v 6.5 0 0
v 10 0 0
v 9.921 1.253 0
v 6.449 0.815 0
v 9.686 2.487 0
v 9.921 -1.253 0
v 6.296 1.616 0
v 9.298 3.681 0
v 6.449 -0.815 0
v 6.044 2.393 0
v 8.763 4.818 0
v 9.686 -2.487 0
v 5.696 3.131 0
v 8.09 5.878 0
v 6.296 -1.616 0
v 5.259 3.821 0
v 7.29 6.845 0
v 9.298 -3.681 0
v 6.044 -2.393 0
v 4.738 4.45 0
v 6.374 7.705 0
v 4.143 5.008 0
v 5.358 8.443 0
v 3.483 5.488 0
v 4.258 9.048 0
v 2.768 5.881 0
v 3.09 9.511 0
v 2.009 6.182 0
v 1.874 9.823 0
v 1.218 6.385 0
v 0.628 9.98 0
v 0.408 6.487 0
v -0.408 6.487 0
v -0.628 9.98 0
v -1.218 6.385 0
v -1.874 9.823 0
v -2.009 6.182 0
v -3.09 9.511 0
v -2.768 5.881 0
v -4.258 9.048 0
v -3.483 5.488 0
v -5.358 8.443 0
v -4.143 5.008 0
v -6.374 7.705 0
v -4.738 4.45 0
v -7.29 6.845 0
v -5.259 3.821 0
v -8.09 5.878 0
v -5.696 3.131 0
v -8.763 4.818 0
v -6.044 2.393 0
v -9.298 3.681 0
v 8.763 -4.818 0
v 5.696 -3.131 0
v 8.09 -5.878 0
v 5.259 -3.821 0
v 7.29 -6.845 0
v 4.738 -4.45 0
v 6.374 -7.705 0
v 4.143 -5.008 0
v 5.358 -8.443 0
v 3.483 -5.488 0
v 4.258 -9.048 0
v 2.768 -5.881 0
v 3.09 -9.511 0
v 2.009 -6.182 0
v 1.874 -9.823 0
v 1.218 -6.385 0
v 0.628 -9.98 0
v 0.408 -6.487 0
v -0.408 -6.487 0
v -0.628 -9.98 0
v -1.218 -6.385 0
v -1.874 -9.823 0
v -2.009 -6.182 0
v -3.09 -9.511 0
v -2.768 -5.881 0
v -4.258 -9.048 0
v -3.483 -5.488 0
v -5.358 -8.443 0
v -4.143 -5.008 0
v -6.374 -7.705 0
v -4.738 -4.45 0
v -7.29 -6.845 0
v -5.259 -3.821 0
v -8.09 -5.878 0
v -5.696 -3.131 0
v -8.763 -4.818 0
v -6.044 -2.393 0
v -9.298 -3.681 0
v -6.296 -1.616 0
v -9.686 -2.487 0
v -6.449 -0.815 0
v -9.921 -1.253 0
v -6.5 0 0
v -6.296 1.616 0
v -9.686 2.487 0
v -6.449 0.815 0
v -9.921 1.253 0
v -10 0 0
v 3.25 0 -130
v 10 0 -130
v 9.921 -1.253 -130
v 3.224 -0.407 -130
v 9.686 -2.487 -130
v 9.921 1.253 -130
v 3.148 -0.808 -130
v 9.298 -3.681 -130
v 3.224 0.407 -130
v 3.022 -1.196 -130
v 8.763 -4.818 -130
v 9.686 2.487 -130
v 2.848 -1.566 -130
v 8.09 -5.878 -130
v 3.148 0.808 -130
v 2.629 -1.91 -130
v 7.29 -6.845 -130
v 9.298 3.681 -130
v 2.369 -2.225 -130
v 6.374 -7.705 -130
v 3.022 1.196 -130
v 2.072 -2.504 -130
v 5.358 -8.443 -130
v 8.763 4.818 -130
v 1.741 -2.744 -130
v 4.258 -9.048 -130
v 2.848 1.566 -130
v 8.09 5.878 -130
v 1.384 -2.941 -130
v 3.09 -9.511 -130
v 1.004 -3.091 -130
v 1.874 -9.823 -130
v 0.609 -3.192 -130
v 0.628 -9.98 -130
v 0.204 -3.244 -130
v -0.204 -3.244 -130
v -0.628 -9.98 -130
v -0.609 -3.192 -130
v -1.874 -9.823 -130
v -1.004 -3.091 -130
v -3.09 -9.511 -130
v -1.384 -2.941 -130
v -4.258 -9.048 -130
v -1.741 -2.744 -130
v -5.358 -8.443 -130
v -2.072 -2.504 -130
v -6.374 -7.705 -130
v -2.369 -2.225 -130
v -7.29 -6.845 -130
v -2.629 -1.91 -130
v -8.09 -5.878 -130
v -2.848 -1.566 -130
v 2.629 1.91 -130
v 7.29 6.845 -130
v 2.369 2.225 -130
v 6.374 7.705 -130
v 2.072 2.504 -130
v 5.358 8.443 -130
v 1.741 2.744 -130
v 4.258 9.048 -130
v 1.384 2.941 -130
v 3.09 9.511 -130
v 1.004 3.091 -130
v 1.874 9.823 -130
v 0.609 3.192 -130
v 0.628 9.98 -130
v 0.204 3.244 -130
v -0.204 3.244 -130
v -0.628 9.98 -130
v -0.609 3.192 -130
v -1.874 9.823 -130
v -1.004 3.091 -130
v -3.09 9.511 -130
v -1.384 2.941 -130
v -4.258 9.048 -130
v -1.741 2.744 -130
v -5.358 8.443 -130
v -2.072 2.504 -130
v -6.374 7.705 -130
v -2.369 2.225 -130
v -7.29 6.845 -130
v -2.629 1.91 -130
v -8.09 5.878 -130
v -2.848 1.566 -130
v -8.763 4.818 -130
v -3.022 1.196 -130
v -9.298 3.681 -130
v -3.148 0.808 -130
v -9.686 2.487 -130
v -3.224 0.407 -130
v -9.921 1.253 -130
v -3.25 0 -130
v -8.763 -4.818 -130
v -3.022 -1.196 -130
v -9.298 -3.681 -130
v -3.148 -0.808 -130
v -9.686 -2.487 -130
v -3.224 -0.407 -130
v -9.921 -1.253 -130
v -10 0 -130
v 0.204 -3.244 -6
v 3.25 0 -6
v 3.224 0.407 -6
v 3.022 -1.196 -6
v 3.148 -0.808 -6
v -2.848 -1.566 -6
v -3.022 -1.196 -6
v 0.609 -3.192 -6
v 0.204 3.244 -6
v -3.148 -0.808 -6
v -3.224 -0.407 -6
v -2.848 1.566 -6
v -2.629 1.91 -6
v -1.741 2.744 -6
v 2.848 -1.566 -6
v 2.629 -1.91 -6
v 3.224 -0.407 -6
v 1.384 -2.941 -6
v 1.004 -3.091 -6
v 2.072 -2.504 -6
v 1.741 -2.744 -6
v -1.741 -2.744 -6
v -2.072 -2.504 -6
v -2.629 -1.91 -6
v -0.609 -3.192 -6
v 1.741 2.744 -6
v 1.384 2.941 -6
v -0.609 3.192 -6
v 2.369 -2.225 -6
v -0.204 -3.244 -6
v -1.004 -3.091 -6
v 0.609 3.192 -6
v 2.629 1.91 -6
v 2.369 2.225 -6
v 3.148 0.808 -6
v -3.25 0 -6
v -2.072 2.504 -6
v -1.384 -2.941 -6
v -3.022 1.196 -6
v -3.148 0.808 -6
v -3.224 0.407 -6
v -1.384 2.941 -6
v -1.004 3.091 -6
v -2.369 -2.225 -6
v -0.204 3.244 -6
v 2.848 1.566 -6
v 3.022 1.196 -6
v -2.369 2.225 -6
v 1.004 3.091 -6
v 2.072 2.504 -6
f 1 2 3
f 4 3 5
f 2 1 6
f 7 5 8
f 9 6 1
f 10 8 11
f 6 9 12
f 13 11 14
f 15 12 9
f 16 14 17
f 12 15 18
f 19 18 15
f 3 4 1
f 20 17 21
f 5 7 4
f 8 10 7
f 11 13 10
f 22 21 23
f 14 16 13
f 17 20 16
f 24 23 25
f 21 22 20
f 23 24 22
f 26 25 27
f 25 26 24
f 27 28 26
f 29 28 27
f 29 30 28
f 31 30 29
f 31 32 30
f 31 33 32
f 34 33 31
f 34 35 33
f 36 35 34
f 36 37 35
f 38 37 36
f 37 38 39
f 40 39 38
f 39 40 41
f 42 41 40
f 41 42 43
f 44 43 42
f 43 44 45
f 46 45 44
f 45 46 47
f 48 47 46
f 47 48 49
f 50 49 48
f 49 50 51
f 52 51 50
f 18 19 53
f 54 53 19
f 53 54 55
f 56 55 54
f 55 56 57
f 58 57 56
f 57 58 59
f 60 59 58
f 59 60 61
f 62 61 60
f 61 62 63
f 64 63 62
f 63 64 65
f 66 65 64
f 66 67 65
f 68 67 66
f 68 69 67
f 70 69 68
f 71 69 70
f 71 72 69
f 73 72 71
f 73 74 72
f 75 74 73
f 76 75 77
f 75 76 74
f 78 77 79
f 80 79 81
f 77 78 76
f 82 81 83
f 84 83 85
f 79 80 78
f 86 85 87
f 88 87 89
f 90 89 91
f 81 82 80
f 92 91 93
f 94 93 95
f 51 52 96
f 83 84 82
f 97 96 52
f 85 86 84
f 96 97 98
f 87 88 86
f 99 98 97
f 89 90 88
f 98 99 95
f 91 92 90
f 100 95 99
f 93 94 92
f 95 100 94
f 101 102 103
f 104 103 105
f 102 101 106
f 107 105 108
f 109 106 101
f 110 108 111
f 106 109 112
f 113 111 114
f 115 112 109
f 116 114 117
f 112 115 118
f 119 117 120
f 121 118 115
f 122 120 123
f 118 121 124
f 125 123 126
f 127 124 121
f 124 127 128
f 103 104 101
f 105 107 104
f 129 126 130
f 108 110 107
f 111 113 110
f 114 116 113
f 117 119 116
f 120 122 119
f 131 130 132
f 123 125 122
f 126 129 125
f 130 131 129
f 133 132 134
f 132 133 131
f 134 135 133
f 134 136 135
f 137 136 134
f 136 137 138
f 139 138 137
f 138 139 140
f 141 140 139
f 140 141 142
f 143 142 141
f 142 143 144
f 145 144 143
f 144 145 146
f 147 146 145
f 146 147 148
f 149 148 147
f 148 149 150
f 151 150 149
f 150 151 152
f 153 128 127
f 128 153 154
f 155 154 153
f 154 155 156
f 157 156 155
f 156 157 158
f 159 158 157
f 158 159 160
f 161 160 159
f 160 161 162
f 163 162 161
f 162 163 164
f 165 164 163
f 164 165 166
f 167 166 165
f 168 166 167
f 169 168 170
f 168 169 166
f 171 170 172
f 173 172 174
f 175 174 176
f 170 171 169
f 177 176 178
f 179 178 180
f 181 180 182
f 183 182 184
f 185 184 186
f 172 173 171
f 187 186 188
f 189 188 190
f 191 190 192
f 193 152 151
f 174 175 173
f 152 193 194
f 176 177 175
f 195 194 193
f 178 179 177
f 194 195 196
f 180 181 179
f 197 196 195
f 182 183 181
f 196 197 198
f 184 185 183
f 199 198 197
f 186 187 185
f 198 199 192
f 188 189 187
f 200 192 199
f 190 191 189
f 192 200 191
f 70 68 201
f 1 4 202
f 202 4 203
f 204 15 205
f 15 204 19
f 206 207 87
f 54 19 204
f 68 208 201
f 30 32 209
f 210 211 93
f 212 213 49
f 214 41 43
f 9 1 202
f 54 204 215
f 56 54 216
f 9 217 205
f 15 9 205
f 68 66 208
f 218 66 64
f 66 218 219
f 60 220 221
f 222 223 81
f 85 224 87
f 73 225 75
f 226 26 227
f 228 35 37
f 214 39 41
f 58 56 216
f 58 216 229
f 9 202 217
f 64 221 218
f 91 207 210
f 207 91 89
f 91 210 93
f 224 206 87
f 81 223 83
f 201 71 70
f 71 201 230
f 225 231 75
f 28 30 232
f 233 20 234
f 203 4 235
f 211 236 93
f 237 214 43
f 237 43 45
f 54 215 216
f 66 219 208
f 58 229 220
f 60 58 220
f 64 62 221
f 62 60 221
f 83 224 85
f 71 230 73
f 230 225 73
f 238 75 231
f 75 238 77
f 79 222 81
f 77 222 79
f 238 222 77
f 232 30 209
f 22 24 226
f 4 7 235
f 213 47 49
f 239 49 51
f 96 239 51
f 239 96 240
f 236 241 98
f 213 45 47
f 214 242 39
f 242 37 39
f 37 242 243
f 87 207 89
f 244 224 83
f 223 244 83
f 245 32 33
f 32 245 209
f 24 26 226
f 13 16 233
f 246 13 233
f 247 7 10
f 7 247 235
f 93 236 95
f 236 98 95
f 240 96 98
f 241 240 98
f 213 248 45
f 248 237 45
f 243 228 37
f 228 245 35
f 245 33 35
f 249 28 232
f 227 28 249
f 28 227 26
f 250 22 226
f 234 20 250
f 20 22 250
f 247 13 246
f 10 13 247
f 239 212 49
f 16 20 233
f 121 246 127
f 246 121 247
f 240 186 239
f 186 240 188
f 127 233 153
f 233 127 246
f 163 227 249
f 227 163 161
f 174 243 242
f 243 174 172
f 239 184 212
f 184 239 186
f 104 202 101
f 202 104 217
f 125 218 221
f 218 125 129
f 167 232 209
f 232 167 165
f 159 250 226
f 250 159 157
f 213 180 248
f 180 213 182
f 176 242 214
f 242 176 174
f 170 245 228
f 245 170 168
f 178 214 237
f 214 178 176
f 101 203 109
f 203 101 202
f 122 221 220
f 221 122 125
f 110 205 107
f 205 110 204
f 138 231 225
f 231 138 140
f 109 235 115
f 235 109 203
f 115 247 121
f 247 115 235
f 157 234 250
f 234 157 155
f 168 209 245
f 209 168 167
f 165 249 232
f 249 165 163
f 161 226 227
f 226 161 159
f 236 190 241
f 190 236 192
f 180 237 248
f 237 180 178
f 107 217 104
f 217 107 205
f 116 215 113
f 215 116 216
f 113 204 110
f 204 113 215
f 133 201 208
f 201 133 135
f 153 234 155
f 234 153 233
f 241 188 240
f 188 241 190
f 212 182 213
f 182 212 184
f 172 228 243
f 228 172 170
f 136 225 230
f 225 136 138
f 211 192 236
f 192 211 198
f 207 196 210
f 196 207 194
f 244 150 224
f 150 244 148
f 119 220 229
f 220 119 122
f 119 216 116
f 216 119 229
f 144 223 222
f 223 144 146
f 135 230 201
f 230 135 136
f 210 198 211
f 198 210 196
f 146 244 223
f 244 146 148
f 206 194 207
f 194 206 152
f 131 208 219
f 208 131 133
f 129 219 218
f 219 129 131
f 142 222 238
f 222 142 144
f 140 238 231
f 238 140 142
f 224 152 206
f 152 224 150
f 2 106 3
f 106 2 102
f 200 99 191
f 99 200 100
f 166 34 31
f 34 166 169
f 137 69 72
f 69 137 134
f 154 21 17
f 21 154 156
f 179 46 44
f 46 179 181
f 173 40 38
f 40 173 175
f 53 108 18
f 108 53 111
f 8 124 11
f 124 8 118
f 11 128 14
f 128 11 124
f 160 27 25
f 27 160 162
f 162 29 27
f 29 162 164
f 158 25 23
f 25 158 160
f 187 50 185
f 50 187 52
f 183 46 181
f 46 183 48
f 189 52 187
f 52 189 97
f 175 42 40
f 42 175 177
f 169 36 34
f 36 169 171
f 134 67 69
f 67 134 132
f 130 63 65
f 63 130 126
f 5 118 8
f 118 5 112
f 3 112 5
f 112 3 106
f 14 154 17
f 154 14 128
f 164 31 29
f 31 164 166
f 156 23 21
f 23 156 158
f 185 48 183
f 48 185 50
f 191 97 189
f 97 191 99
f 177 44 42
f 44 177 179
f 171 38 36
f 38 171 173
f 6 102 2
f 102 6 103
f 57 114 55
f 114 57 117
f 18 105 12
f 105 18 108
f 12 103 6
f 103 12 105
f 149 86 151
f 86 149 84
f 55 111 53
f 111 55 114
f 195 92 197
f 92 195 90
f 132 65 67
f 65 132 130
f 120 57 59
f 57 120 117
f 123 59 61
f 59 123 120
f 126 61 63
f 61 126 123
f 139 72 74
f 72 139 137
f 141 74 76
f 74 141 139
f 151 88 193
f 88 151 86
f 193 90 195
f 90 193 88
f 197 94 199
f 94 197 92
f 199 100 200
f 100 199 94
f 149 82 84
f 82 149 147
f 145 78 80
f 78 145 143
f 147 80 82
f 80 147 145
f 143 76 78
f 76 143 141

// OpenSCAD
$fn = 50;


difference() {
	union() {
		translate(v = [0, 0, -130.0000000000]) {
			cylinder(h = 130, r = 10.0000000000);
		}
	}
	union() {
		translate(v = [0, 0, 0]) {
			rotate(a = [0, 0, 0]) {
				difference() {
					union() {
						#translate(v = [0, 0, -130.0000000000]) {
							cylinder(h = 130, r = 2.2500000000);
						}
						#translate(v = [0, 0, -6]) {
							cylinder(h = 6, r = 10.0000000000, r1 = 3.2500000000, r2 = 6.5000000000);
						}
						#translate(v = [0, 0, -130.0000000000]) {
							cylinder(h = 130, r = 3.2500000000);
						}
						#translate(v = [0, 0, -130.0000000000]) {
							cylinder(h = 130, r = 2.2500000000);
						}
					}
					union();
				}
			}
		}
	}
}
